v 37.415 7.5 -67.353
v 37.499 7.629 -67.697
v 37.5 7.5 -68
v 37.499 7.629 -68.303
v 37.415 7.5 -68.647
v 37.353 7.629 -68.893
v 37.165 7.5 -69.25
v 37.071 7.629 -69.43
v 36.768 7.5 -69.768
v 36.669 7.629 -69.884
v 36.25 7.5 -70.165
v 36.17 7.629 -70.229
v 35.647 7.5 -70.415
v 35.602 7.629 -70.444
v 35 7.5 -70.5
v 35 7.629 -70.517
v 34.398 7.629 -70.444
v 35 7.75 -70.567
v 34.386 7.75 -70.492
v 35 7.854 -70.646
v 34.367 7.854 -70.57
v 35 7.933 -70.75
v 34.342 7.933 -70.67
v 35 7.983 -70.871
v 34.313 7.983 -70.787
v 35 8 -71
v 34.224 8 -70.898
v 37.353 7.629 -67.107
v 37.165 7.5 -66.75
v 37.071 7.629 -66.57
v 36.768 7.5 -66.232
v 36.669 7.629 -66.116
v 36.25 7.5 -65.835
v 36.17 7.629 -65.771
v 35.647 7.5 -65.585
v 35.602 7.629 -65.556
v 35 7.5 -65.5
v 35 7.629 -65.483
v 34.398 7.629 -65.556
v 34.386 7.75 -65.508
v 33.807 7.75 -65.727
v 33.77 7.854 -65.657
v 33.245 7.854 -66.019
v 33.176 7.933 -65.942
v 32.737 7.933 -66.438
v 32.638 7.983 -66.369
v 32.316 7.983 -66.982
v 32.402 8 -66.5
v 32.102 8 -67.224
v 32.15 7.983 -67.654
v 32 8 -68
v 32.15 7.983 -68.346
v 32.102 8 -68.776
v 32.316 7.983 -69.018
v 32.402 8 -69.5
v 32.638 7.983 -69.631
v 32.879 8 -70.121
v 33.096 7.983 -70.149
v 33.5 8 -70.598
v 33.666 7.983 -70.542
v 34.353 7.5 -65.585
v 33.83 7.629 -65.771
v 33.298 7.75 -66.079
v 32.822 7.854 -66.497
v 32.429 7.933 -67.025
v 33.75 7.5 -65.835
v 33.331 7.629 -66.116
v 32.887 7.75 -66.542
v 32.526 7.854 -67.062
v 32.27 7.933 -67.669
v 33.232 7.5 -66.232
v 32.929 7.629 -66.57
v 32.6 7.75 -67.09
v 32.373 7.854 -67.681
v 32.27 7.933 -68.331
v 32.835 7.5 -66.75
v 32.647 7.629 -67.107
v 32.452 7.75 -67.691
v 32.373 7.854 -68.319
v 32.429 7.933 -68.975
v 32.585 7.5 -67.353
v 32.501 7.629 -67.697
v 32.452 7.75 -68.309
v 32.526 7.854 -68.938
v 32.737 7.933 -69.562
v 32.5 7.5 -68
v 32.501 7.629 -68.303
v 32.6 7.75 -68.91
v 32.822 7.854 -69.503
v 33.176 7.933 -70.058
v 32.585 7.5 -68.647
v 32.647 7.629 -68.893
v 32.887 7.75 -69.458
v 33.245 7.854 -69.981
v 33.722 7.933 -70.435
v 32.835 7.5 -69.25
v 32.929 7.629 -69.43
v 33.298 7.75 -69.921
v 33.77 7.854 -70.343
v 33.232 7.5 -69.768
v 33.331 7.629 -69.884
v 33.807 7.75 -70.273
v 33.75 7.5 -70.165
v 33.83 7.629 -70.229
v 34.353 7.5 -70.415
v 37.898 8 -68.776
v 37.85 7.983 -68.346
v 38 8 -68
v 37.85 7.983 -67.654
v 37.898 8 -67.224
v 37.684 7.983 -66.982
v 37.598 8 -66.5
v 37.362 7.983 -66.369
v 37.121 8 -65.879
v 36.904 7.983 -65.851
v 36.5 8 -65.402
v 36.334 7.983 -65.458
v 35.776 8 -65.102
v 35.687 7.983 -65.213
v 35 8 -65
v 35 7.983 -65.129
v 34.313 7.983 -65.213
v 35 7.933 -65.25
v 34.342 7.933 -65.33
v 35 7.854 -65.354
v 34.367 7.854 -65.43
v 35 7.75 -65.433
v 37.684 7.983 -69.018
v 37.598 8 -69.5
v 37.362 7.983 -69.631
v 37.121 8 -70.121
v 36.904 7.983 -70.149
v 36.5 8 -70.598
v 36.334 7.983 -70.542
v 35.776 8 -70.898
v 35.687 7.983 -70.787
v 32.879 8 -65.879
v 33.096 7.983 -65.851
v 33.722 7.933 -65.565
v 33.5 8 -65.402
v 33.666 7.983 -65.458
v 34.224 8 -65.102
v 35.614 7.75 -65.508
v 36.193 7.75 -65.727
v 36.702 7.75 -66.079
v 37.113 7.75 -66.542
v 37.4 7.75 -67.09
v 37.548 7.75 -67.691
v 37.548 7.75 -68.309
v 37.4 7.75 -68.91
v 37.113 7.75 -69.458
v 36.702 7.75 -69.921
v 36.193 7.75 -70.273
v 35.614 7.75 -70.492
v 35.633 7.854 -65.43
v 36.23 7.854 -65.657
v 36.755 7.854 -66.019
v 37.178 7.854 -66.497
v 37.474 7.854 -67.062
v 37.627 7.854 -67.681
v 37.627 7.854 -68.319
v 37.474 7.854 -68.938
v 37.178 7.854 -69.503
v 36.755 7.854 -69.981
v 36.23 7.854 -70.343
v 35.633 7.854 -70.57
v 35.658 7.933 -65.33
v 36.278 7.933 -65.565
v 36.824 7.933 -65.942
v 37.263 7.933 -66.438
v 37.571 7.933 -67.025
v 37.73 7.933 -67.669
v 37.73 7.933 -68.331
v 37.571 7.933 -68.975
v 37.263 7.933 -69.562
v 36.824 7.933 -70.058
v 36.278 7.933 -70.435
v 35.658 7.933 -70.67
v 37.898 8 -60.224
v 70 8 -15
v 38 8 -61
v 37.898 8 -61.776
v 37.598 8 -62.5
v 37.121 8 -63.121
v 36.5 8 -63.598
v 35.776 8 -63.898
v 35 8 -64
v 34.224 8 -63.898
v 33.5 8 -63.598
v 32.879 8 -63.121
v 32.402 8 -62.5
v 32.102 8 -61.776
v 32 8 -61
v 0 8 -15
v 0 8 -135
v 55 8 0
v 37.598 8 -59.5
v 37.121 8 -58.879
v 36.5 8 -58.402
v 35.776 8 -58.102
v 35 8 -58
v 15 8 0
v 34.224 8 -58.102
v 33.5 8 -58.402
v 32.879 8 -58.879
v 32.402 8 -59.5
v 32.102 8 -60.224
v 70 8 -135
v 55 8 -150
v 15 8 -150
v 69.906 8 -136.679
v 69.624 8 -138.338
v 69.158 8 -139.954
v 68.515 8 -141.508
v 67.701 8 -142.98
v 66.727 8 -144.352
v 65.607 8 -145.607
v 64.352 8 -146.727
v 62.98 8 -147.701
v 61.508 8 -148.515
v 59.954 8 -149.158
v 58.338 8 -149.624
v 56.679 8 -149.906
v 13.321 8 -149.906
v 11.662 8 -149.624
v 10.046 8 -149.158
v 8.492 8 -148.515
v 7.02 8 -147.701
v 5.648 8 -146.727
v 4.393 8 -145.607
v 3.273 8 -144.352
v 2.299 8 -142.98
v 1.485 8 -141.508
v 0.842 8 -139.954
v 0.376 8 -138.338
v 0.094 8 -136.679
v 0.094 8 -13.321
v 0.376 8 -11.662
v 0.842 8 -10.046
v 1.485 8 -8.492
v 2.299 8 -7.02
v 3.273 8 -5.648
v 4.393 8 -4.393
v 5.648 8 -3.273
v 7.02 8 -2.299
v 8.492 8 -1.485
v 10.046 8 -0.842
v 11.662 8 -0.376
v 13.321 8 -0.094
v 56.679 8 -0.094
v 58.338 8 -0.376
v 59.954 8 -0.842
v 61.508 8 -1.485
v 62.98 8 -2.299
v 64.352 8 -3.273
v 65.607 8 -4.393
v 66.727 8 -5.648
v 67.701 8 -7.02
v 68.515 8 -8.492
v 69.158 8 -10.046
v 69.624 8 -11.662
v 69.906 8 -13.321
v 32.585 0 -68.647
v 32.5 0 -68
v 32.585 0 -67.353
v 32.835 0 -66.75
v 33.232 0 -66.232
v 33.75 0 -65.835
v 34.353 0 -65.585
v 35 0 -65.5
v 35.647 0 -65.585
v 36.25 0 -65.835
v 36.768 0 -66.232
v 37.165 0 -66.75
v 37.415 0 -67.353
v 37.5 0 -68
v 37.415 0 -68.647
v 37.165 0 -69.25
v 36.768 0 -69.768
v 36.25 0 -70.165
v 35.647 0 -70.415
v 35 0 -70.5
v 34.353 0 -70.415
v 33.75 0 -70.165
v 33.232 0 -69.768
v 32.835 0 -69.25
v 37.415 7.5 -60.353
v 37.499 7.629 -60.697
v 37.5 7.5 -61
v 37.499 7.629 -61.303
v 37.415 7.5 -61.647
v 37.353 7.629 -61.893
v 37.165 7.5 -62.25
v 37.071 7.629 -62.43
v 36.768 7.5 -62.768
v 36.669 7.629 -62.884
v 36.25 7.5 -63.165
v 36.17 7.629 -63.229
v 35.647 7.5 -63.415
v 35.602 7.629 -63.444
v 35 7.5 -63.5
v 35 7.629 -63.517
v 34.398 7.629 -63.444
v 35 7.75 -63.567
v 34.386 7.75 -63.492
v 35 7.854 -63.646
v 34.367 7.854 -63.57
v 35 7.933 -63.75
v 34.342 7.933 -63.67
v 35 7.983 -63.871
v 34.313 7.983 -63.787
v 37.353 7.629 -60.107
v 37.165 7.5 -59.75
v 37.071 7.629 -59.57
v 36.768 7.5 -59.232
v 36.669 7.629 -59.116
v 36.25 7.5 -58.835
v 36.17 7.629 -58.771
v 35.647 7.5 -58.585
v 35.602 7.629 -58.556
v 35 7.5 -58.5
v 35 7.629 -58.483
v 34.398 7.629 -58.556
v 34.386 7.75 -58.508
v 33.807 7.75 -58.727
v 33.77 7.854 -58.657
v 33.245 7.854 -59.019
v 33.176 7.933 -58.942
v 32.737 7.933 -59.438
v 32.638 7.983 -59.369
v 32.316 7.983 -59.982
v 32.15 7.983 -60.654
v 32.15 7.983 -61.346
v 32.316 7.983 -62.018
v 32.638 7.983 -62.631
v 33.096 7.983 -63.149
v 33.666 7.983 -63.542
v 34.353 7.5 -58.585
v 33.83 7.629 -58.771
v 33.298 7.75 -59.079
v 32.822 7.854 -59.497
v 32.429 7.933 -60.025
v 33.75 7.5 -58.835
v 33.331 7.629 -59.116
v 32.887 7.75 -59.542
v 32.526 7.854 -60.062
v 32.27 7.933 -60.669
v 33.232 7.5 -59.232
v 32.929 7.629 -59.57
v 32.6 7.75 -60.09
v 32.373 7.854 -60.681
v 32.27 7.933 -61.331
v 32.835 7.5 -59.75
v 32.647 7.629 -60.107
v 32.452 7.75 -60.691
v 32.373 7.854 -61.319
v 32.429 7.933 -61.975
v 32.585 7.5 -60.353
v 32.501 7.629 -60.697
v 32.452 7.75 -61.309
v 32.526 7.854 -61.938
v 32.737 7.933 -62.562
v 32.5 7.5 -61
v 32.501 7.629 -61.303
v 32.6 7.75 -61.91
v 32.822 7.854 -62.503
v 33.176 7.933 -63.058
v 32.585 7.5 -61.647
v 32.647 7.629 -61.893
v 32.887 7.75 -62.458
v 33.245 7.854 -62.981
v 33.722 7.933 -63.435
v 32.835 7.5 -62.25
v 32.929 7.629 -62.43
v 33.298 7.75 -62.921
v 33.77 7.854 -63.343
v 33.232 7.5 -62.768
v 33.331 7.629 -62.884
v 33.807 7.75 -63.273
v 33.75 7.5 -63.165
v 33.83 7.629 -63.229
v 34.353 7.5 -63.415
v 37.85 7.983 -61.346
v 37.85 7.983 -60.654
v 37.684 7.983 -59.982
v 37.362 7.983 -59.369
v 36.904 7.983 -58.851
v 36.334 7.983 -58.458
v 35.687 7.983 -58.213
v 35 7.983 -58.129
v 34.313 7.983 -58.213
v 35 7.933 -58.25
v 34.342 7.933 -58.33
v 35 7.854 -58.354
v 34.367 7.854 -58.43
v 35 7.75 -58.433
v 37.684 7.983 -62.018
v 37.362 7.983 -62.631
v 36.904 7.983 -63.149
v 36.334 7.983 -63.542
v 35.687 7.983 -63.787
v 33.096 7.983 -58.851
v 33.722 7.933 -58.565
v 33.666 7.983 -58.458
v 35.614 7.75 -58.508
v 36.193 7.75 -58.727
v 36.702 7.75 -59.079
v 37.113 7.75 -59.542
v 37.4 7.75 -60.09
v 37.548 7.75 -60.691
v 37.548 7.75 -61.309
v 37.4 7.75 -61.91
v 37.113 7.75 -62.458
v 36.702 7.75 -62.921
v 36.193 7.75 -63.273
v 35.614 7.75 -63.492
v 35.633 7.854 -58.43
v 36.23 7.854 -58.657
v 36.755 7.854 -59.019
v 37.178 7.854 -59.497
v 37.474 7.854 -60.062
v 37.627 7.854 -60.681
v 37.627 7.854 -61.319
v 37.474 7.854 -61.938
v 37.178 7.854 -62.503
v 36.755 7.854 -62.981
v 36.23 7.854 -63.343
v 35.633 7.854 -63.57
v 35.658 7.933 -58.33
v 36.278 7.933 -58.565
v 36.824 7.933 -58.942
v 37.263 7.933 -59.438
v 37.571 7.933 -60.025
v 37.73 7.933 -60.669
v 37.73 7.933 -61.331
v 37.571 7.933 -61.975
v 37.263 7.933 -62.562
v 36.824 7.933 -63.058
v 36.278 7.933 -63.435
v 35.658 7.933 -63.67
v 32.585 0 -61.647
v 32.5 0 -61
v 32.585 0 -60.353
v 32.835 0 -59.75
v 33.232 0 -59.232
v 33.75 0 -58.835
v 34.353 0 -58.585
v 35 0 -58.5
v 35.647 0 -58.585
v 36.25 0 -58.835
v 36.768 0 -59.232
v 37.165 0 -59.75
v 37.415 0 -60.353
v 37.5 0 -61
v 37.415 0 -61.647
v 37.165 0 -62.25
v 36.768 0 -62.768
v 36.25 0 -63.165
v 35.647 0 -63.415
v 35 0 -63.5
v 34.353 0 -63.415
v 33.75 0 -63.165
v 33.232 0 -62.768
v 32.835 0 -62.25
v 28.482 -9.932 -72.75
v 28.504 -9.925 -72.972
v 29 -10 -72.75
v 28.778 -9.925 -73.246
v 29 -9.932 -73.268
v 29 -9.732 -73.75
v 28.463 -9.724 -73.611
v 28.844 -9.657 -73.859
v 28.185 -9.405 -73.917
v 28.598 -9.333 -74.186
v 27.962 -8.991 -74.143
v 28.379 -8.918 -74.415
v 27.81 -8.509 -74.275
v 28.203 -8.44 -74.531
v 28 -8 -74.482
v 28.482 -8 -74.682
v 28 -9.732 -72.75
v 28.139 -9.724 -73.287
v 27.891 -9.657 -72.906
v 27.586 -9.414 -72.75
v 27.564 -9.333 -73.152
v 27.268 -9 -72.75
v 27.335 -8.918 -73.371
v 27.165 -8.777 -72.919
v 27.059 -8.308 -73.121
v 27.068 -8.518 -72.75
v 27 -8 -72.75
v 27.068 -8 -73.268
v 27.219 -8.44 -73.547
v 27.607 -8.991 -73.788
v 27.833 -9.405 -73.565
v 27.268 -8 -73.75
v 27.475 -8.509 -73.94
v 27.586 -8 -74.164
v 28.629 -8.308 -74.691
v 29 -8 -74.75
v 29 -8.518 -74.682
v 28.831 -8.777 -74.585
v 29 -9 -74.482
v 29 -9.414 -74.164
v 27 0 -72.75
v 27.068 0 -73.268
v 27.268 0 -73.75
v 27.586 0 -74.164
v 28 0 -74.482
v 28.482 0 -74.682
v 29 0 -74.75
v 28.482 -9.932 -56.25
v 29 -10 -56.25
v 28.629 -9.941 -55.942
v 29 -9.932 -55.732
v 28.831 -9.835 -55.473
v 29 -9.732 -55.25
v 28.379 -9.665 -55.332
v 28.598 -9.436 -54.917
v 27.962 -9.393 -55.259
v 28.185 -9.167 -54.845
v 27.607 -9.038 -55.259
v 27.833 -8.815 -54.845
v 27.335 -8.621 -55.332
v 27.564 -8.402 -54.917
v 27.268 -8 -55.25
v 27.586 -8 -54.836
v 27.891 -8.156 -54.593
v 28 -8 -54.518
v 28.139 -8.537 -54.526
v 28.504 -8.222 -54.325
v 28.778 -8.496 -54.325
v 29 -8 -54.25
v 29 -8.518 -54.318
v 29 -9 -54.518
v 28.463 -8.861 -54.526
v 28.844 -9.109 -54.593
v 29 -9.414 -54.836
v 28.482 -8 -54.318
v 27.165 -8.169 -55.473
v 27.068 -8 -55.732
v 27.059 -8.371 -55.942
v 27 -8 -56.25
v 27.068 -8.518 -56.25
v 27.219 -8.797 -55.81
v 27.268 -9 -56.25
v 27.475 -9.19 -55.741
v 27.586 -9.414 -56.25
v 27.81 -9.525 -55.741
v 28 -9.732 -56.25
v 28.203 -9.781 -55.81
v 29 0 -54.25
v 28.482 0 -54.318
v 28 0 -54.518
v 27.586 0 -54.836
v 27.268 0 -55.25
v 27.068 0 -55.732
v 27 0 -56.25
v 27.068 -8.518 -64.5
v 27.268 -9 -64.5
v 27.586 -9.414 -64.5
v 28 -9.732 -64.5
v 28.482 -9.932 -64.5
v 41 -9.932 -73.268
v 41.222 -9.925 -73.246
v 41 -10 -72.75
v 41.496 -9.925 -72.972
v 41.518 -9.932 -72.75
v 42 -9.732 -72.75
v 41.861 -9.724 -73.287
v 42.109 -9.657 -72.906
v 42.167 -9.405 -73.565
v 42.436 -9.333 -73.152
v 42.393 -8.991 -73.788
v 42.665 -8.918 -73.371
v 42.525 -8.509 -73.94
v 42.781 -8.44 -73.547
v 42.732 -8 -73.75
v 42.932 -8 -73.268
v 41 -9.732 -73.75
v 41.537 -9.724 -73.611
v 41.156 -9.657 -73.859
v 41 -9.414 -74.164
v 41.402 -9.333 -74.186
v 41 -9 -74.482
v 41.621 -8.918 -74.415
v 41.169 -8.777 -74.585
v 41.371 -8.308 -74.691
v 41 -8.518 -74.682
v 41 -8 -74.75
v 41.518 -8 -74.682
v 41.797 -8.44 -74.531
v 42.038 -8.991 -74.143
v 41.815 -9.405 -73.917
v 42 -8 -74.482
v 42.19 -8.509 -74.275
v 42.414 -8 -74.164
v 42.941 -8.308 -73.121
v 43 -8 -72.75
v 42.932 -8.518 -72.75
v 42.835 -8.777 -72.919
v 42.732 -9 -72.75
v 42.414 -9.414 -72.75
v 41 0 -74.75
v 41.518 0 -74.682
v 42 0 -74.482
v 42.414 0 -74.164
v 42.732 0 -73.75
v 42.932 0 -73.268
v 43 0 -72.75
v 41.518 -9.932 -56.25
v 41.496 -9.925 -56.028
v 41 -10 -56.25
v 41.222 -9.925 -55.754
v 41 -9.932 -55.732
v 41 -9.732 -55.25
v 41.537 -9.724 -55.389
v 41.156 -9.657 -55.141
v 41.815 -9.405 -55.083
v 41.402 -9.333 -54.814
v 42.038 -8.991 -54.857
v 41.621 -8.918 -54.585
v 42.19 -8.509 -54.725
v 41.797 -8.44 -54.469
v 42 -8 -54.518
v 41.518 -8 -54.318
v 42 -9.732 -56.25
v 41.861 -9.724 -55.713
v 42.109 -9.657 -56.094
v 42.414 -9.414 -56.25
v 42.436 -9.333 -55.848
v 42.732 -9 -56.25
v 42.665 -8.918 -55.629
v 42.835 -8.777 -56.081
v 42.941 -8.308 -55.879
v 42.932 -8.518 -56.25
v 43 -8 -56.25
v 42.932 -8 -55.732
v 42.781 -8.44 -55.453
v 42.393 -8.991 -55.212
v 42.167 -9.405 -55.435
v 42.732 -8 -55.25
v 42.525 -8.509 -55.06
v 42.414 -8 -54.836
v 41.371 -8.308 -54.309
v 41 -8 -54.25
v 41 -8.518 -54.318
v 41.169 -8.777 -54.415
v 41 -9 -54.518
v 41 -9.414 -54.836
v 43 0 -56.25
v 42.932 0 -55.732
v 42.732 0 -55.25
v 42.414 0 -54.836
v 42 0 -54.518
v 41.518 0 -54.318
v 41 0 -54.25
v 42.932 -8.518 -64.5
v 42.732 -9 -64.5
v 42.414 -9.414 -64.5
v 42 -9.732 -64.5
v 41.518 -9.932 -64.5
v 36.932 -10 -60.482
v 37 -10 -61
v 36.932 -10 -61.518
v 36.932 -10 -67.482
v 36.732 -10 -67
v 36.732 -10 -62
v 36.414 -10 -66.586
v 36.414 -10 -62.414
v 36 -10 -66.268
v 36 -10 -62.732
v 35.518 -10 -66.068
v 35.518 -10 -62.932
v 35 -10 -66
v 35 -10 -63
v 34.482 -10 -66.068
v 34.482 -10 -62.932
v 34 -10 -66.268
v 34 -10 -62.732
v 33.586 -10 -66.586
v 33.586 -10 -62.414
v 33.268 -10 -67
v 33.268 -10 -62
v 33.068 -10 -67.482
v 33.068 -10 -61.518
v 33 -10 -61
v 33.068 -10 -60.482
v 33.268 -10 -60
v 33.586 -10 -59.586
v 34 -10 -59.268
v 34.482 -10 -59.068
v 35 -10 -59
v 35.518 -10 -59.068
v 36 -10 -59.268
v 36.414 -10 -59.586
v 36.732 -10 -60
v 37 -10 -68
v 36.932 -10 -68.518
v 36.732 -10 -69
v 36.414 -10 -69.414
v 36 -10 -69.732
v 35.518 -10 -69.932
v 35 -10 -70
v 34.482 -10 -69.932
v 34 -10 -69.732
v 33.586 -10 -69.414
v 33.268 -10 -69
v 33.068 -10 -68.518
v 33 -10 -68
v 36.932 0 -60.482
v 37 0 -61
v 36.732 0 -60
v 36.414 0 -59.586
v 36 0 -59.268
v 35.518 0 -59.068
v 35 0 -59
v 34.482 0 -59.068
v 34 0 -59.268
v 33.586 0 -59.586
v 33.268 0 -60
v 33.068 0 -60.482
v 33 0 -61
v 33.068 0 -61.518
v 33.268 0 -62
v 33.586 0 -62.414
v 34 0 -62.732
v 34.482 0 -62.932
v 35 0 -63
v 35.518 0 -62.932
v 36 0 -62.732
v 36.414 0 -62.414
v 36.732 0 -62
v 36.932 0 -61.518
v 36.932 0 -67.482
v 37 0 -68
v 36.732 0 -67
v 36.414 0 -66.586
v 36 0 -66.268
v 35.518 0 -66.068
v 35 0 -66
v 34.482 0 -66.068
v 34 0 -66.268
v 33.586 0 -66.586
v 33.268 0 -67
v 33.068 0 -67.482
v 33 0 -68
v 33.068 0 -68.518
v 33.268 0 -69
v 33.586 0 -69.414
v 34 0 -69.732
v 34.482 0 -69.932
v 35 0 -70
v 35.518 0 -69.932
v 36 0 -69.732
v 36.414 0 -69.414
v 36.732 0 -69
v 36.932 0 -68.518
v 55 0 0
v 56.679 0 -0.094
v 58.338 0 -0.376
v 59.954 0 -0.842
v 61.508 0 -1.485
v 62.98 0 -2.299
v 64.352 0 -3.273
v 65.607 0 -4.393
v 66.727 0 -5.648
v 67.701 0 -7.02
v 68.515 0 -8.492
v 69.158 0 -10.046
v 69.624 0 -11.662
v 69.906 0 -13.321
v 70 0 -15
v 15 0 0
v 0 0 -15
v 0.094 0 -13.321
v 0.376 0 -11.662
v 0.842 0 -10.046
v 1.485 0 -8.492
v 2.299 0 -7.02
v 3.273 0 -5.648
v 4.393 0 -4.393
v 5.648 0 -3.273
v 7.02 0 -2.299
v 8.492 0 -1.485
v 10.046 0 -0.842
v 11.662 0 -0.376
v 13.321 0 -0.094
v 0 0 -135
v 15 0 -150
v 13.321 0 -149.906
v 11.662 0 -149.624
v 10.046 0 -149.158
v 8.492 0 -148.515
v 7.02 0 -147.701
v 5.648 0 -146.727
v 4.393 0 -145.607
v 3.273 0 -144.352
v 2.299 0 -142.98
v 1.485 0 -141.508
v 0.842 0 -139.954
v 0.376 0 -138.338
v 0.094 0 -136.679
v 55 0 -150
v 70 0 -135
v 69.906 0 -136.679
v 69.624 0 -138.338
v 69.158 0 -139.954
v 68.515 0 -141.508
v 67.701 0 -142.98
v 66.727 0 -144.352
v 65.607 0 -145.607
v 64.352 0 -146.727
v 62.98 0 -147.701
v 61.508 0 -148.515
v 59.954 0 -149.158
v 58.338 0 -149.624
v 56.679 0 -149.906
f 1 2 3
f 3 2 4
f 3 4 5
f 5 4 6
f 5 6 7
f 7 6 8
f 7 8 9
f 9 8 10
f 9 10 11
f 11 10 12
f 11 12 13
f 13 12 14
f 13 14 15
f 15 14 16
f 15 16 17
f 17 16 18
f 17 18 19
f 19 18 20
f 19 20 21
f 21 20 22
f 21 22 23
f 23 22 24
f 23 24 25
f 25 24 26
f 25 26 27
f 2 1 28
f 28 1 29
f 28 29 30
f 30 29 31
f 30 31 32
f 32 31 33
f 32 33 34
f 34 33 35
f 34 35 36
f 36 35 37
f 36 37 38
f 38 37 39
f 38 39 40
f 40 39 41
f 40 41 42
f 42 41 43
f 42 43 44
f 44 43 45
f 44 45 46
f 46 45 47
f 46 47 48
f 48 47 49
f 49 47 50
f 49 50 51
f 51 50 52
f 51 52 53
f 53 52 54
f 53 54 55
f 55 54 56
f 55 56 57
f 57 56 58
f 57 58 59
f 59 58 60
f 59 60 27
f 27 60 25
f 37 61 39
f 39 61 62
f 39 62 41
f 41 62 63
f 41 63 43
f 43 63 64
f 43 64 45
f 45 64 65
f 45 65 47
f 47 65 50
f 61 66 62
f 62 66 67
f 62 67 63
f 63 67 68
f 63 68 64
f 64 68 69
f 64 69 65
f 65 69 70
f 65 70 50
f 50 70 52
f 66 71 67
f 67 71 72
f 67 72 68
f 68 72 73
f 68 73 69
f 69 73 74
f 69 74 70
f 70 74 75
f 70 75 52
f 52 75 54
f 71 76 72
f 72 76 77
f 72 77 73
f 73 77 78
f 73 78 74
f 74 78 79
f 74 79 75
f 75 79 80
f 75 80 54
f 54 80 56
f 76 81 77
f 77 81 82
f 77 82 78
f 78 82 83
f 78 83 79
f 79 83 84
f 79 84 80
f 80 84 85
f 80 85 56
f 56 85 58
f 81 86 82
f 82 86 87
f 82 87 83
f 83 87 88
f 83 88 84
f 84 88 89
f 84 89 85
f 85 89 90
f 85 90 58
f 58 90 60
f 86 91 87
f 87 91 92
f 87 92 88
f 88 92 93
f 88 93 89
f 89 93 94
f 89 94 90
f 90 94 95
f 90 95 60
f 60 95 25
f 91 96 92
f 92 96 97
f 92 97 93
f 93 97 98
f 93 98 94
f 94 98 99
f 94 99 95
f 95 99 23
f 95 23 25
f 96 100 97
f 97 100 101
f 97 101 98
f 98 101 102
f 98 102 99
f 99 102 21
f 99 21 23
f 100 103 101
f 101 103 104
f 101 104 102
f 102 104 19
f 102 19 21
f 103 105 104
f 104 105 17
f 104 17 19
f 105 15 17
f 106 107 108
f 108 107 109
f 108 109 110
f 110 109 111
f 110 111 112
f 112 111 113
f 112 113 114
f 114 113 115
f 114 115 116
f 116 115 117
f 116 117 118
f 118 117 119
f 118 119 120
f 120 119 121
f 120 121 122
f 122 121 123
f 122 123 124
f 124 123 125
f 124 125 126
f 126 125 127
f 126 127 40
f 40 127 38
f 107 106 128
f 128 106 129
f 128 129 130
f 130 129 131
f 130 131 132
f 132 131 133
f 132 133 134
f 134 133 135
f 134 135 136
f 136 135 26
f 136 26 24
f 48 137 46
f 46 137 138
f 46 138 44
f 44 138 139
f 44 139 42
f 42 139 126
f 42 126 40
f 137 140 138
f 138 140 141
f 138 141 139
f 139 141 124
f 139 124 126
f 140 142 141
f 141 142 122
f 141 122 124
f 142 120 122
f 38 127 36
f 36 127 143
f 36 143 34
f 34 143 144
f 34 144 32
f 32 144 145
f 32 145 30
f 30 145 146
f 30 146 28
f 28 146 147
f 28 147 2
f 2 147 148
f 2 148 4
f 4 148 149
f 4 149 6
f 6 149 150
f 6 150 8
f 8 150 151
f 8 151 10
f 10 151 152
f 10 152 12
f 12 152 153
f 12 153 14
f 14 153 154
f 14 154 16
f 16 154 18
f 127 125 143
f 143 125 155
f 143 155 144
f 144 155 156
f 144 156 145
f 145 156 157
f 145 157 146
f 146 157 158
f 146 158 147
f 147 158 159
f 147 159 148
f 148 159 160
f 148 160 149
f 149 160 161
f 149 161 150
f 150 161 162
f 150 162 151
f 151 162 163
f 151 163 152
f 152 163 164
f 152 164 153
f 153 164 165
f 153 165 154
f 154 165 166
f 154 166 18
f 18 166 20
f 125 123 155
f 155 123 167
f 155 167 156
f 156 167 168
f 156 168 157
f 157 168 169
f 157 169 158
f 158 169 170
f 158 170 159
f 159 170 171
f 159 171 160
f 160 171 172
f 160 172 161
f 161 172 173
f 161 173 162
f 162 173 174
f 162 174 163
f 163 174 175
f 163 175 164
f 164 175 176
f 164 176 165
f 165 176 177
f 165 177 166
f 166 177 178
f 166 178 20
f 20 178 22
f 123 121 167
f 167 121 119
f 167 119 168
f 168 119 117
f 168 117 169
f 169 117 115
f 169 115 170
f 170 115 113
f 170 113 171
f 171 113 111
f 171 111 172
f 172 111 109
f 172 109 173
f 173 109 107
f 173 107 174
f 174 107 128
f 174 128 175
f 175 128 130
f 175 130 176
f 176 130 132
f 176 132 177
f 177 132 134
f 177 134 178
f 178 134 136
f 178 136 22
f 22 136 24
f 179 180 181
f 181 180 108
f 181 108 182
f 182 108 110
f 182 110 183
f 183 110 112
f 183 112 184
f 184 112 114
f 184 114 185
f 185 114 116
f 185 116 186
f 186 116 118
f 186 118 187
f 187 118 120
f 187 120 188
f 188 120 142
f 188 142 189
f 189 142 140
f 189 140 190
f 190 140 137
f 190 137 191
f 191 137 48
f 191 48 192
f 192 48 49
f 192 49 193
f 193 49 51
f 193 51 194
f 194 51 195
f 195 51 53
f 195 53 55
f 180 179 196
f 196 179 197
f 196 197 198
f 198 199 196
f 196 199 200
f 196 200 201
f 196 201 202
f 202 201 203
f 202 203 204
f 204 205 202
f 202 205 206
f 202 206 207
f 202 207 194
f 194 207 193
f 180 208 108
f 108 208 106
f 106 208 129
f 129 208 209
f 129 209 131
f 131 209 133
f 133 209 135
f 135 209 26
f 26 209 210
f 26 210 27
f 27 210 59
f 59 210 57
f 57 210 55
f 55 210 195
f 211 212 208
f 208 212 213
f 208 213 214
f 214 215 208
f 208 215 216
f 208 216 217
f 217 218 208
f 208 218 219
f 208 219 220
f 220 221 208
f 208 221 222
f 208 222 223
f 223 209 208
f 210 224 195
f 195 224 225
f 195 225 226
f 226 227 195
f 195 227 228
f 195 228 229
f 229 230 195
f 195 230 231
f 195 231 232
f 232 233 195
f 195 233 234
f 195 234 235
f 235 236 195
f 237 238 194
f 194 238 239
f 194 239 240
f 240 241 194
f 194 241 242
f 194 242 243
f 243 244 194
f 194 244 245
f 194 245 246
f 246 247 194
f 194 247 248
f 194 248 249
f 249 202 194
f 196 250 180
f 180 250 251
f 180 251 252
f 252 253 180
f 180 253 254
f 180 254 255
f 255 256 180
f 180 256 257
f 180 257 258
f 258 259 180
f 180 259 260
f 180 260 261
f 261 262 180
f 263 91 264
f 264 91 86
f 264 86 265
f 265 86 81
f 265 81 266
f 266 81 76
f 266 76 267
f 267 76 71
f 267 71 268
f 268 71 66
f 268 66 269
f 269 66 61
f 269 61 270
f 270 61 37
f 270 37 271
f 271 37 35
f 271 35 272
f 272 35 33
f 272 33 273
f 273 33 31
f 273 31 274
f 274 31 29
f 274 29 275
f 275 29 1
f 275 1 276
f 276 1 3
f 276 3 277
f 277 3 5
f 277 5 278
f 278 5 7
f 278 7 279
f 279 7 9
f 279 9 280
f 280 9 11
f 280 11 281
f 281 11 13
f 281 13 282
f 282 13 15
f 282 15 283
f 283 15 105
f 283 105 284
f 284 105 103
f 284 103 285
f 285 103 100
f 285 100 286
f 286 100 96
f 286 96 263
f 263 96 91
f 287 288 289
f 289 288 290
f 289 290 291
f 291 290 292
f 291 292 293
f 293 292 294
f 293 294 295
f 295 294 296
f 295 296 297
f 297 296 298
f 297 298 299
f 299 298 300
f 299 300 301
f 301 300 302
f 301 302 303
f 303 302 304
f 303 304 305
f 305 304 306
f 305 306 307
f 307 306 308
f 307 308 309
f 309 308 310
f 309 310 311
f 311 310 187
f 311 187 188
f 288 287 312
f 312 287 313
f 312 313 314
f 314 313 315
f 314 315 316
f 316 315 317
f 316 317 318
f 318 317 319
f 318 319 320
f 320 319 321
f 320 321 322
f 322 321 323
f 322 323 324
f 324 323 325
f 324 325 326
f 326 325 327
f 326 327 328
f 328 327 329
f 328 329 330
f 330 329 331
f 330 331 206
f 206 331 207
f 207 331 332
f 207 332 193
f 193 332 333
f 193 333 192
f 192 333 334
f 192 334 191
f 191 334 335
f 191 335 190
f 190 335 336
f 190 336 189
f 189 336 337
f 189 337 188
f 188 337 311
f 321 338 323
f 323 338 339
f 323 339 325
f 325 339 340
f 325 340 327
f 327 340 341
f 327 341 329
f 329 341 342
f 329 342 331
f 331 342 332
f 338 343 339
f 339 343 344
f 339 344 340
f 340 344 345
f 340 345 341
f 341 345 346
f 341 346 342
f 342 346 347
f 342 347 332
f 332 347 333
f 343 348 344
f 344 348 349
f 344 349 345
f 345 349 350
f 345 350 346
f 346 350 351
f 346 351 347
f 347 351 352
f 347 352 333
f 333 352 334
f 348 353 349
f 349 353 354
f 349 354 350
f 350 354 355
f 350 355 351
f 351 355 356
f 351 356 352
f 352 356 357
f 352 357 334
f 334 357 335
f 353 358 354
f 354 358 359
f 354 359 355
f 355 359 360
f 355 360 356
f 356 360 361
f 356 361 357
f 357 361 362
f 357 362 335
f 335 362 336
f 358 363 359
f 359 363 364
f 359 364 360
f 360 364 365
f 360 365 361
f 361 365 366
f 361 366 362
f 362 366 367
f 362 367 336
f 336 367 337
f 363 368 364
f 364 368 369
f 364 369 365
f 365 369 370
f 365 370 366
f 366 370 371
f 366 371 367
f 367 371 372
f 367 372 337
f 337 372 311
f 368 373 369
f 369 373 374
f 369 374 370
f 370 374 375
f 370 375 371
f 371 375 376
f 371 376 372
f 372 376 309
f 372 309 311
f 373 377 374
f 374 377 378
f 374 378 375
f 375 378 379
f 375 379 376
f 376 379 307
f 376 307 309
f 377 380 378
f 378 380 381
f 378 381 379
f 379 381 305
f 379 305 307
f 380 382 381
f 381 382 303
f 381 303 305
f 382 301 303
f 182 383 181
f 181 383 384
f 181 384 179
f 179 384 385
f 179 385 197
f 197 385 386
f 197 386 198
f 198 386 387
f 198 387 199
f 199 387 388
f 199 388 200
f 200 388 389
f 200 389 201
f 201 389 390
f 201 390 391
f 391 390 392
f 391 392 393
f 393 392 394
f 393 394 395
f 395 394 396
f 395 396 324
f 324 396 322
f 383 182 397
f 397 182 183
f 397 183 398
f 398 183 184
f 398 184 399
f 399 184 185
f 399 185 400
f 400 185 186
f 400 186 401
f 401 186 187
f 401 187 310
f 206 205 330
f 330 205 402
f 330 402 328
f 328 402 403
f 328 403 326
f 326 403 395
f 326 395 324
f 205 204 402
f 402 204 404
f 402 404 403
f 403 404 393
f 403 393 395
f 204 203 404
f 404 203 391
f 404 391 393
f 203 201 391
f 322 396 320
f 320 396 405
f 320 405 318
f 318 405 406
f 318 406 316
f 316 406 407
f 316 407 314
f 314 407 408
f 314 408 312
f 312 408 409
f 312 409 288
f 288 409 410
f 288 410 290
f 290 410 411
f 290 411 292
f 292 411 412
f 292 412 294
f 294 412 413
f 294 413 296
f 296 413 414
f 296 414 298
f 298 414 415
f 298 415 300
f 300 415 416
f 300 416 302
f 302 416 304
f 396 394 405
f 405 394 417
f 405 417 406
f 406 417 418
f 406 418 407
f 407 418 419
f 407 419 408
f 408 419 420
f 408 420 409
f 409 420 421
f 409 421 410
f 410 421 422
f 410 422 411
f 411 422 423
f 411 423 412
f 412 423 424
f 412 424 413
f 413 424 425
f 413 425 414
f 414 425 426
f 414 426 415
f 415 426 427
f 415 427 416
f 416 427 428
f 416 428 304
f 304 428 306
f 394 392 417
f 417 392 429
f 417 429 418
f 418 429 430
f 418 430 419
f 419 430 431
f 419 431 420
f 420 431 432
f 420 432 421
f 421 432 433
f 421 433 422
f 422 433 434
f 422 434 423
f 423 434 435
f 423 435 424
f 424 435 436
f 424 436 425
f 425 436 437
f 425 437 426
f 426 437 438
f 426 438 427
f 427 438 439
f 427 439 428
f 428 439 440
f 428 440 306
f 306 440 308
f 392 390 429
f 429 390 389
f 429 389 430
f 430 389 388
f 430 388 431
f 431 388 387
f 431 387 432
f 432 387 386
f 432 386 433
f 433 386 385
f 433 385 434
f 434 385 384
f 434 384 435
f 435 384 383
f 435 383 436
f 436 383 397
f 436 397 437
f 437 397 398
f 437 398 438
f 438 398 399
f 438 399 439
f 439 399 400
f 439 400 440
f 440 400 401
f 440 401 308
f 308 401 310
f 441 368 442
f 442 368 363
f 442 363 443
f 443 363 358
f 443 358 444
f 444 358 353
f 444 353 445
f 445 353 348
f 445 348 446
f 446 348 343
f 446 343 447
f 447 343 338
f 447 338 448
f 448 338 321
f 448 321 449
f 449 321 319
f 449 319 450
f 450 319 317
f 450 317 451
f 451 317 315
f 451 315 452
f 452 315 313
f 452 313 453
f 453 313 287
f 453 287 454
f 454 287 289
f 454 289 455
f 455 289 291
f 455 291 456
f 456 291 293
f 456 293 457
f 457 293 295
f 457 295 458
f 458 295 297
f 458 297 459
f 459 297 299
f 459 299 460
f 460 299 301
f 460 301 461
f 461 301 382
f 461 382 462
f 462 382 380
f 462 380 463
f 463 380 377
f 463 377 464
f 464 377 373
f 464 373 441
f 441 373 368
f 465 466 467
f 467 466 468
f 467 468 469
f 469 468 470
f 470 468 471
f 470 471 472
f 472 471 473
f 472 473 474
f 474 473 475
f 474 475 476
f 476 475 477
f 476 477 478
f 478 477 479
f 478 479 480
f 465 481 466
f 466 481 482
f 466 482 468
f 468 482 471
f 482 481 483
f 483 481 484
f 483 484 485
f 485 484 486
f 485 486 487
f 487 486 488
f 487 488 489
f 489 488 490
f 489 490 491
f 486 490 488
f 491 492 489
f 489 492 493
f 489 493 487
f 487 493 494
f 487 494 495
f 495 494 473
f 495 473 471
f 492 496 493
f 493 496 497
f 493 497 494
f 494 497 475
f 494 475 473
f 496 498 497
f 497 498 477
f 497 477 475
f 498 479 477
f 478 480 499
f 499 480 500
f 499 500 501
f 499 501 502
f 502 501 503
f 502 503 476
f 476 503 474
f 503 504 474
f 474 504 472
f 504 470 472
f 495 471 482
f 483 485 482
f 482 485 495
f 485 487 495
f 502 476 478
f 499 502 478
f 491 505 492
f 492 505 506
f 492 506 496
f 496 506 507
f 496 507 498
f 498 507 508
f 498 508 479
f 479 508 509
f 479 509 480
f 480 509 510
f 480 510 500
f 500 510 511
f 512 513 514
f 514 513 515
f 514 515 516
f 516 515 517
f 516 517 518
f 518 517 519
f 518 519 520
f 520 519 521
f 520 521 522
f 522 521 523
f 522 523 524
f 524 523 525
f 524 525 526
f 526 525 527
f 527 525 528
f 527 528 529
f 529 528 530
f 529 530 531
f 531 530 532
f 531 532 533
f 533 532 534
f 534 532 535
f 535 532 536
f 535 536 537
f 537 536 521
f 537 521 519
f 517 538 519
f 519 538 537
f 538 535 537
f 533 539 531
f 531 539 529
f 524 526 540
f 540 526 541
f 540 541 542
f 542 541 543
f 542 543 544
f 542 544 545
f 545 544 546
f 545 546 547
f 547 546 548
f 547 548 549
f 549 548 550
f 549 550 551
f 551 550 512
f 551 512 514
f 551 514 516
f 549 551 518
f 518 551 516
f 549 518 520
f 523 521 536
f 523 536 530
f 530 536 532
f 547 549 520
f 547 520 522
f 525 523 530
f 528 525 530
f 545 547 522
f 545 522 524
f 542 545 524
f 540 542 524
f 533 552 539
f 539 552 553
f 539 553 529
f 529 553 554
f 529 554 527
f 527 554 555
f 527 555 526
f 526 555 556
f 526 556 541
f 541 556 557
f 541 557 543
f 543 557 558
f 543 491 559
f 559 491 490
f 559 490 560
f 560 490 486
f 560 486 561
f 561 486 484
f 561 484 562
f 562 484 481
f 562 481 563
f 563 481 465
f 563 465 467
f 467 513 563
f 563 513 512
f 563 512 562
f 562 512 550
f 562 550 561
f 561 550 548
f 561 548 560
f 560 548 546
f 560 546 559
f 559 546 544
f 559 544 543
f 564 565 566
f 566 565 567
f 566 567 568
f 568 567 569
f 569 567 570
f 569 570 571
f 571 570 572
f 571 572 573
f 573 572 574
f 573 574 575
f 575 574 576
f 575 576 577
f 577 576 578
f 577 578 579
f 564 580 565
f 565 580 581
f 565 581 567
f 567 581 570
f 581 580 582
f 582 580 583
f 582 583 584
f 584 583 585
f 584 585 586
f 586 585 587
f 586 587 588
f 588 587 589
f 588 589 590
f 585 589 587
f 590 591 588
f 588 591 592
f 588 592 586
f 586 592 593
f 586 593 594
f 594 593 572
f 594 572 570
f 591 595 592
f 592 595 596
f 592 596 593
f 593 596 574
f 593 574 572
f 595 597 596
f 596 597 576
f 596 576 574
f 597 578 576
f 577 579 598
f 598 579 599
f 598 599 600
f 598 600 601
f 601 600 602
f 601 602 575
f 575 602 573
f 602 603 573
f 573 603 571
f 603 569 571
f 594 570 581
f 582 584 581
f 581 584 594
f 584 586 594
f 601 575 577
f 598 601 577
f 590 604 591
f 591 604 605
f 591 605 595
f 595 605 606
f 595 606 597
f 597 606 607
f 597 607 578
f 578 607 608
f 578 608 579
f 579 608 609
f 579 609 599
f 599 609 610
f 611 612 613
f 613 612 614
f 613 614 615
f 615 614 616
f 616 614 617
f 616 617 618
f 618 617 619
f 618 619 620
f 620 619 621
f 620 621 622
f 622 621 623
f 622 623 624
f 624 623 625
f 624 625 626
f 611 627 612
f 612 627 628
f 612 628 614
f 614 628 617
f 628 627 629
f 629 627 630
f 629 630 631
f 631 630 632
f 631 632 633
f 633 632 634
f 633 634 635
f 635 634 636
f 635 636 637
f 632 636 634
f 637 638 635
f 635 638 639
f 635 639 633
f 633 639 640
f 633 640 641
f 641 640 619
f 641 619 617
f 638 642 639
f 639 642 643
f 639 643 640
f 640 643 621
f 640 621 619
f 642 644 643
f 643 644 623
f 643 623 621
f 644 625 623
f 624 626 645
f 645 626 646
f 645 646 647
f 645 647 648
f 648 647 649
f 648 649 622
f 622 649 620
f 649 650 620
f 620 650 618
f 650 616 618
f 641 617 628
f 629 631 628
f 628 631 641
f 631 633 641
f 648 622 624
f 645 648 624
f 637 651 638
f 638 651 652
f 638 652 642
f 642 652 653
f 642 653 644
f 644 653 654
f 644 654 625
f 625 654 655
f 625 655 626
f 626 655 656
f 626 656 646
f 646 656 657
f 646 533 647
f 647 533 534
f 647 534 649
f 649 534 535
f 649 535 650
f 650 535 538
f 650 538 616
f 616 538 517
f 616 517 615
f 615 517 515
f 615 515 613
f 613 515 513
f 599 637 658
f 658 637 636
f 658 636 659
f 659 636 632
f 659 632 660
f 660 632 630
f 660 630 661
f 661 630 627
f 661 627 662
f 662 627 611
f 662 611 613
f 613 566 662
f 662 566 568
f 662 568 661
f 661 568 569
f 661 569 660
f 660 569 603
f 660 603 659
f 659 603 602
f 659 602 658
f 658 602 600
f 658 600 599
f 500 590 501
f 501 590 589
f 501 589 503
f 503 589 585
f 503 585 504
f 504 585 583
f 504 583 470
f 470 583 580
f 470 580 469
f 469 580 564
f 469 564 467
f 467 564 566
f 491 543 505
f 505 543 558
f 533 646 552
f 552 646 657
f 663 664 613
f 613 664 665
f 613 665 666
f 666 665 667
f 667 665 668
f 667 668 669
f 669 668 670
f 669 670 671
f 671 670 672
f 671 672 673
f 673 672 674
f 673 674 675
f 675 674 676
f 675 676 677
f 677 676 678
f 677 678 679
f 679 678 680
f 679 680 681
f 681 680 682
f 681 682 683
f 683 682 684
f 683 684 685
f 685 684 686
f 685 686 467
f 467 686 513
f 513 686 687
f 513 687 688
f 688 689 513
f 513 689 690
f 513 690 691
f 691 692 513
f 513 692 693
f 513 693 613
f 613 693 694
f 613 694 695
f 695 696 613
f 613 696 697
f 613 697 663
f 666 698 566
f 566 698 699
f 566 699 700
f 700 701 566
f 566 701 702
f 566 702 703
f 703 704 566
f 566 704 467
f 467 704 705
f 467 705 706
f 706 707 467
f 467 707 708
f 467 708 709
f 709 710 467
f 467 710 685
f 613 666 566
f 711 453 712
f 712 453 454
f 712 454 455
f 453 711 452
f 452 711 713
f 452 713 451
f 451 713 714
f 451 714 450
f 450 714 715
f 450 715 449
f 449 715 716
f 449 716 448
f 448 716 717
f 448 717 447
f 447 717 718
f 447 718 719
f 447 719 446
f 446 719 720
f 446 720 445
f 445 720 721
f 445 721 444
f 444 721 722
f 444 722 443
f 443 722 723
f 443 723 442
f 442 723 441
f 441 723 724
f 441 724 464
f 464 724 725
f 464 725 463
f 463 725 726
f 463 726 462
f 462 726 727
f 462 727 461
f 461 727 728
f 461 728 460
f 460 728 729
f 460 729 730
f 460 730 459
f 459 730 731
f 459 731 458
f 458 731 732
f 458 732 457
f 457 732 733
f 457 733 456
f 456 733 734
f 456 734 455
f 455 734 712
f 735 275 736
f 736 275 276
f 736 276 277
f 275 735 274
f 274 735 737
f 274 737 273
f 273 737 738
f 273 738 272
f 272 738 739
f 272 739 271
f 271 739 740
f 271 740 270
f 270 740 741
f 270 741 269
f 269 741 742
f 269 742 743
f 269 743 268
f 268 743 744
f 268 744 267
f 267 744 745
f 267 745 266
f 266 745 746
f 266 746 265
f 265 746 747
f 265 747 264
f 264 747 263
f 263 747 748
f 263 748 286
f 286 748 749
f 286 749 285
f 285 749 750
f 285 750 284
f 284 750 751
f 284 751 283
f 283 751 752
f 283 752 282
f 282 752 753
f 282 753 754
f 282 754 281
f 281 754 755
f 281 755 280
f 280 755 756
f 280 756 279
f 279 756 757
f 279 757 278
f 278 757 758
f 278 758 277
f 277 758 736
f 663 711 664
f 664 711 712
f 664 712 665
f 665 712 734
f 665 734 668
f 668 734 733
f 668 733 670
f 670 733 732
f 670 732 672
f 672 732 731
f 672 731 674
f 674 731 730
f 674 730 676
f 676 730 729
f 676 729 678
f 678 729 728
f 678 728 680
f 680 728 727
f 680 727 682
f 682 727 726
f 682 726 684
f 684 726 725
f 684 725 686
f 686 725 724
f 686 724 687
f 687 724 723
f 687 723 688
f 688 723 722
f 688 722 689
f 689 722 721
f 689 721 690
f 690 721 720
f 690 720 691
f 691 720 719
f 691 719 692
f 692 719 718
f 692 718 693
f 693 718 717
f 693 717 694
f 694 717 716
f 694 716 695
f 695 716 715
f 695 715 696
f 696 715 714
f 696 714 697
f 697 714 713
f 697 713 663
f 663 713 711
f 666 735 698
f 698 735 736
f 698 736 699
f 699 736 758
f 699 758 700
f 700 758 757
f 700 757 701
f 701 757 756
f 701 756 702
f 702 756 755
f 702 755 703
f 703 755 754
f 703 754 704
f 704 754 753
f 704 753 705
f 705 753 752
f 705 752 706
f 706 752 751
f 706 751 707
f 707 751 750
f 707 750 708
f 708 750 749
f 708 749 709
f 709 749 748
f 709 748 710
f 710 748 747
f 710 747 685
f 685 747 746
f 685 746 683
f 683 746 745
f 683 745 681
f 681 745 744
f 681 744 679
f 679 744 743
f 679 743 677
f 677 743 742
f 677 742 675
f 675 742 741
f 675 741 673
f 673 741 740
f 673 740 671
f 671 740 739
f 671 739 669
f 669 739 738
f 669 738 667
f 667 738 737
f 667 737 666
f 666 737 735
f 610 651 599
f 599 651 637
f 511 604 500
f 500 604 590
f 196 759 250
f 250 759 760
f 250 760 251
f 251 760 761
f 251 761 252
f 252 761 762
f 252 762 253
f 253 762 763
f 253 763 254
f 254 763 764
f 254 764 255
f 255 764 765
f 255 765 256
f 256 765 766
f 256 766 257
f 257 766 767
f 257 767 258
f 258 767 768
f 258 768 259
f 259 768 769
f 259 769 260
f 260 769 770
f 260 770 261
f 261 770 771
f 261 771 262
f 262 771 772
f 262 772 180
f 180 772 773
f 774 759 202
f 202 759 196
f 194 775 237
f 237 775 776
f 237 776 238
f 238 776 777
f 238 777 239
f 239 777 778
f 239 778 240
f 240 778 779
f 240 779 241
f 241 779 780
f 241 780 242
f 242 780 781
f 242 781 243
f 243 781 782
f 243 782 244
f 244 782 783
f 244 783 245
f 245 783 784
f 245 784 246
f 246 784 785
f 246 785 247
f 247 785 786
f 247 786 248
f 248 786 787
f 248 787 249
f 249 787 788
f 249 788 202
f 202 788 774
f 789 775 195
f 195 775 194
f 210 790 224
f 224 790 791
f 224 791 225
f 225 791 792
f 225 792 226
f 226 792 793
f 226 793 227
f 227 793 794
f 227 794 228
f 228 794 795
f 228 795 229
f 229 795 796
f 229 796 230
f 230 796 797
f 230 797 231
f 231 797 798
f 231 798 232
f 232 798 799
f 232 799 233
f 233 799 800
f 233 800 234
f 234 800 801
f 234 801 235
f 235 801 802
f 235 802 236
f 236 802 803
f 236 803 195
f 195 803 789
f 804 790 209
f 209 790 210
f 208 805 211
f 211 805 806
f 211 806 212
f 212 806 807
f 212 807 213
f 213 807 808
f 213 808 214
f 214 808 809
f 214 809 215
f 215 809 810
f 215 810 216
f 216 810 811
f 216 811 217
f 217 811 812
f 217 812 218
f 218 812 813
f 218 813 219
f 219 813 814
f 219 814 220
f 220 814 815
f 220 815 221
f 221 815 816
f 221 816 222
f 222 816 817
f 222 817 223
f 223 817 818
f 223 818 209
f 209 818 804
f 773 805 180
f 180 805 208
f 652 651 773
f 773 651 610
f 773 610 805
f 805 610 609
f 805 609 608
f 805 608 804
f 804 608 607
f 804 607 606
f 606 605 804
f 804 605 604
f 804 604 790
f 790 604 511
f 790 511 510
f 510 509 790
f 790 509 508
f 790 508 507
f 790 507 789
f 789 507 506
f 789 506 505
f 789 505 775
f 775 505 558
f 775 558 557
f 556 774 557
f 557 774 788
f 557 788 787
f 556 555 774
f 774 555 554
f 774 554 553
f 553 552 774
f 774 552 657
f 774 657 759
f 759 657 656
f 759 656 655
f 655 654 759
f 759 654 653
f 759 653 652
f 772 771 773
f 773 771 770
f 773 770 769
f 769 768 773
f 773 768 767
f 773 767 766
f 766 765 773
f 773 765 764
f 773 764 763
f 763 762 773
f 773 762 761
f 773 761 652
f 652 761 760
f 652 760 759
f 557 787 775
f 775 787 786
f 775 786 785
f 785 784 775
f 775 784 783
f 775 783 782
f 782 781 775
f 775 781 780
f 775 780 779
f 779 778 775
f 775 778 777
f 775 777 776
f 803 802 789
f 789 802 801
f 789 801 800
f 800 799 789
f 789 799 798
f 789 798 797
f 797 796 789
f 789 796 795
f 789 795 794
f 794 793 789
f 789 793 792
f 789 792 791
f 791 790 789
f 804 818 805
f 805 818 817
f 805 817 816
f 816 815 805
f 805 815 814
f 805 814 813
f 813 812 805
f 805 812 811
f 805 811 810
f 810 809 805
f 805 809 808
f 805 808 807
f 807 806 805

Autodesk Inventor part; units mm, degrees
ref_plane "YZ Plane" through (0, 0, 0) normal (1, 0, 0) x (0, 1, 0)
ref_plane "XZ Plane" through (0, 0, 0) normal (0, 1, 0) x (-1, 0, 0)
ref_plane "XY Plane" through (0, 0, 0) normal (0, 0, 1) x (1, 0, 0)
sketch "Esboço4" plane through (0, 0, 0) normal (0, 1, 0) x (-1, 0, 0)
  line L0 (0, -15) -> (0, -135)
  line L1 (-15, -150) -> (-55, -150)
  line L2 (-70, -135) -> (-70, -15)
  line L3 (-55, 0) -> (-15, 0)
  arc A0 (-15, -150) -> (0, -135) centre (-15, -135) ccw
  arc A1 (-70, -135) -> (-55, -150) centre (-55, -135) ccw
  arc A2 (-55, 0) -> (-70, -15) centre (-55, -15) ccw
  arc A3 (0, -15) -> (-15, 0) centre (-15, -15) ccw
  point P0 (0, 0)
  point P1 (0, -150)
  point P2 (-70, -150)
  dimension "d7" = 150
  dimension "d8" = 70
  dimension "d9" = 15
extrude "Extrusão2" add sketch "Esboço4" along normal blind 8
sketch "Esboço5" plane through (0, 8, 0) normal (0, 1, 0) x (1, 0, 0)
  line L0 (15, 0) -> (55, 0) projected
  line L1 (55, 150) -> (15, 150) projected
  circle A0 centre (35, 61) radius 2.5
  circle A1 centre (35, 68) radius 2.5
  point P0 (0, 0)
extrude "Extrusão3" cut sketch "Esboço5" against normal through all
sketch "Sketch7" plane through (0, 0, 0) normal (0, -1, 0) x (1, 0, 0)
  circle A0 centre (35, -61) radius 2 projected
  circle A1 centre (35, -68) radius 2 projected
  line L0 (43, -68) -> (43, -74.75)
  line L1 (43, -74.75) -> (27, -74.75)
  line L2 (27, -74.75) -> (27, -54.25)
  line L3 (27, -54.25) -> (43, -54.25)
  line L4 (43, -54.25) -> (43, -68)
  point P0 (0, 0)
  dimension "d25" = 8
extrude "Extrusion4" add sketch "Sketch7" along normal blind 10
fillet "Fillet4" radius 2 8 edges at (43, -5, -54.25) (43, -5, -74.75) (43, -10, -64.5) (35, -10, -54.25) (27, -10, -64.5) (35, -10, -74.75) (27, -5, -74.75) (27, -5, -54.25)
fillet "Fillet5" radius 0.5 2 edges at (32.5, 8, -61) (32.5, 8, -68)
properties part number "Base superior(suporte)" material "ABS plástico"
